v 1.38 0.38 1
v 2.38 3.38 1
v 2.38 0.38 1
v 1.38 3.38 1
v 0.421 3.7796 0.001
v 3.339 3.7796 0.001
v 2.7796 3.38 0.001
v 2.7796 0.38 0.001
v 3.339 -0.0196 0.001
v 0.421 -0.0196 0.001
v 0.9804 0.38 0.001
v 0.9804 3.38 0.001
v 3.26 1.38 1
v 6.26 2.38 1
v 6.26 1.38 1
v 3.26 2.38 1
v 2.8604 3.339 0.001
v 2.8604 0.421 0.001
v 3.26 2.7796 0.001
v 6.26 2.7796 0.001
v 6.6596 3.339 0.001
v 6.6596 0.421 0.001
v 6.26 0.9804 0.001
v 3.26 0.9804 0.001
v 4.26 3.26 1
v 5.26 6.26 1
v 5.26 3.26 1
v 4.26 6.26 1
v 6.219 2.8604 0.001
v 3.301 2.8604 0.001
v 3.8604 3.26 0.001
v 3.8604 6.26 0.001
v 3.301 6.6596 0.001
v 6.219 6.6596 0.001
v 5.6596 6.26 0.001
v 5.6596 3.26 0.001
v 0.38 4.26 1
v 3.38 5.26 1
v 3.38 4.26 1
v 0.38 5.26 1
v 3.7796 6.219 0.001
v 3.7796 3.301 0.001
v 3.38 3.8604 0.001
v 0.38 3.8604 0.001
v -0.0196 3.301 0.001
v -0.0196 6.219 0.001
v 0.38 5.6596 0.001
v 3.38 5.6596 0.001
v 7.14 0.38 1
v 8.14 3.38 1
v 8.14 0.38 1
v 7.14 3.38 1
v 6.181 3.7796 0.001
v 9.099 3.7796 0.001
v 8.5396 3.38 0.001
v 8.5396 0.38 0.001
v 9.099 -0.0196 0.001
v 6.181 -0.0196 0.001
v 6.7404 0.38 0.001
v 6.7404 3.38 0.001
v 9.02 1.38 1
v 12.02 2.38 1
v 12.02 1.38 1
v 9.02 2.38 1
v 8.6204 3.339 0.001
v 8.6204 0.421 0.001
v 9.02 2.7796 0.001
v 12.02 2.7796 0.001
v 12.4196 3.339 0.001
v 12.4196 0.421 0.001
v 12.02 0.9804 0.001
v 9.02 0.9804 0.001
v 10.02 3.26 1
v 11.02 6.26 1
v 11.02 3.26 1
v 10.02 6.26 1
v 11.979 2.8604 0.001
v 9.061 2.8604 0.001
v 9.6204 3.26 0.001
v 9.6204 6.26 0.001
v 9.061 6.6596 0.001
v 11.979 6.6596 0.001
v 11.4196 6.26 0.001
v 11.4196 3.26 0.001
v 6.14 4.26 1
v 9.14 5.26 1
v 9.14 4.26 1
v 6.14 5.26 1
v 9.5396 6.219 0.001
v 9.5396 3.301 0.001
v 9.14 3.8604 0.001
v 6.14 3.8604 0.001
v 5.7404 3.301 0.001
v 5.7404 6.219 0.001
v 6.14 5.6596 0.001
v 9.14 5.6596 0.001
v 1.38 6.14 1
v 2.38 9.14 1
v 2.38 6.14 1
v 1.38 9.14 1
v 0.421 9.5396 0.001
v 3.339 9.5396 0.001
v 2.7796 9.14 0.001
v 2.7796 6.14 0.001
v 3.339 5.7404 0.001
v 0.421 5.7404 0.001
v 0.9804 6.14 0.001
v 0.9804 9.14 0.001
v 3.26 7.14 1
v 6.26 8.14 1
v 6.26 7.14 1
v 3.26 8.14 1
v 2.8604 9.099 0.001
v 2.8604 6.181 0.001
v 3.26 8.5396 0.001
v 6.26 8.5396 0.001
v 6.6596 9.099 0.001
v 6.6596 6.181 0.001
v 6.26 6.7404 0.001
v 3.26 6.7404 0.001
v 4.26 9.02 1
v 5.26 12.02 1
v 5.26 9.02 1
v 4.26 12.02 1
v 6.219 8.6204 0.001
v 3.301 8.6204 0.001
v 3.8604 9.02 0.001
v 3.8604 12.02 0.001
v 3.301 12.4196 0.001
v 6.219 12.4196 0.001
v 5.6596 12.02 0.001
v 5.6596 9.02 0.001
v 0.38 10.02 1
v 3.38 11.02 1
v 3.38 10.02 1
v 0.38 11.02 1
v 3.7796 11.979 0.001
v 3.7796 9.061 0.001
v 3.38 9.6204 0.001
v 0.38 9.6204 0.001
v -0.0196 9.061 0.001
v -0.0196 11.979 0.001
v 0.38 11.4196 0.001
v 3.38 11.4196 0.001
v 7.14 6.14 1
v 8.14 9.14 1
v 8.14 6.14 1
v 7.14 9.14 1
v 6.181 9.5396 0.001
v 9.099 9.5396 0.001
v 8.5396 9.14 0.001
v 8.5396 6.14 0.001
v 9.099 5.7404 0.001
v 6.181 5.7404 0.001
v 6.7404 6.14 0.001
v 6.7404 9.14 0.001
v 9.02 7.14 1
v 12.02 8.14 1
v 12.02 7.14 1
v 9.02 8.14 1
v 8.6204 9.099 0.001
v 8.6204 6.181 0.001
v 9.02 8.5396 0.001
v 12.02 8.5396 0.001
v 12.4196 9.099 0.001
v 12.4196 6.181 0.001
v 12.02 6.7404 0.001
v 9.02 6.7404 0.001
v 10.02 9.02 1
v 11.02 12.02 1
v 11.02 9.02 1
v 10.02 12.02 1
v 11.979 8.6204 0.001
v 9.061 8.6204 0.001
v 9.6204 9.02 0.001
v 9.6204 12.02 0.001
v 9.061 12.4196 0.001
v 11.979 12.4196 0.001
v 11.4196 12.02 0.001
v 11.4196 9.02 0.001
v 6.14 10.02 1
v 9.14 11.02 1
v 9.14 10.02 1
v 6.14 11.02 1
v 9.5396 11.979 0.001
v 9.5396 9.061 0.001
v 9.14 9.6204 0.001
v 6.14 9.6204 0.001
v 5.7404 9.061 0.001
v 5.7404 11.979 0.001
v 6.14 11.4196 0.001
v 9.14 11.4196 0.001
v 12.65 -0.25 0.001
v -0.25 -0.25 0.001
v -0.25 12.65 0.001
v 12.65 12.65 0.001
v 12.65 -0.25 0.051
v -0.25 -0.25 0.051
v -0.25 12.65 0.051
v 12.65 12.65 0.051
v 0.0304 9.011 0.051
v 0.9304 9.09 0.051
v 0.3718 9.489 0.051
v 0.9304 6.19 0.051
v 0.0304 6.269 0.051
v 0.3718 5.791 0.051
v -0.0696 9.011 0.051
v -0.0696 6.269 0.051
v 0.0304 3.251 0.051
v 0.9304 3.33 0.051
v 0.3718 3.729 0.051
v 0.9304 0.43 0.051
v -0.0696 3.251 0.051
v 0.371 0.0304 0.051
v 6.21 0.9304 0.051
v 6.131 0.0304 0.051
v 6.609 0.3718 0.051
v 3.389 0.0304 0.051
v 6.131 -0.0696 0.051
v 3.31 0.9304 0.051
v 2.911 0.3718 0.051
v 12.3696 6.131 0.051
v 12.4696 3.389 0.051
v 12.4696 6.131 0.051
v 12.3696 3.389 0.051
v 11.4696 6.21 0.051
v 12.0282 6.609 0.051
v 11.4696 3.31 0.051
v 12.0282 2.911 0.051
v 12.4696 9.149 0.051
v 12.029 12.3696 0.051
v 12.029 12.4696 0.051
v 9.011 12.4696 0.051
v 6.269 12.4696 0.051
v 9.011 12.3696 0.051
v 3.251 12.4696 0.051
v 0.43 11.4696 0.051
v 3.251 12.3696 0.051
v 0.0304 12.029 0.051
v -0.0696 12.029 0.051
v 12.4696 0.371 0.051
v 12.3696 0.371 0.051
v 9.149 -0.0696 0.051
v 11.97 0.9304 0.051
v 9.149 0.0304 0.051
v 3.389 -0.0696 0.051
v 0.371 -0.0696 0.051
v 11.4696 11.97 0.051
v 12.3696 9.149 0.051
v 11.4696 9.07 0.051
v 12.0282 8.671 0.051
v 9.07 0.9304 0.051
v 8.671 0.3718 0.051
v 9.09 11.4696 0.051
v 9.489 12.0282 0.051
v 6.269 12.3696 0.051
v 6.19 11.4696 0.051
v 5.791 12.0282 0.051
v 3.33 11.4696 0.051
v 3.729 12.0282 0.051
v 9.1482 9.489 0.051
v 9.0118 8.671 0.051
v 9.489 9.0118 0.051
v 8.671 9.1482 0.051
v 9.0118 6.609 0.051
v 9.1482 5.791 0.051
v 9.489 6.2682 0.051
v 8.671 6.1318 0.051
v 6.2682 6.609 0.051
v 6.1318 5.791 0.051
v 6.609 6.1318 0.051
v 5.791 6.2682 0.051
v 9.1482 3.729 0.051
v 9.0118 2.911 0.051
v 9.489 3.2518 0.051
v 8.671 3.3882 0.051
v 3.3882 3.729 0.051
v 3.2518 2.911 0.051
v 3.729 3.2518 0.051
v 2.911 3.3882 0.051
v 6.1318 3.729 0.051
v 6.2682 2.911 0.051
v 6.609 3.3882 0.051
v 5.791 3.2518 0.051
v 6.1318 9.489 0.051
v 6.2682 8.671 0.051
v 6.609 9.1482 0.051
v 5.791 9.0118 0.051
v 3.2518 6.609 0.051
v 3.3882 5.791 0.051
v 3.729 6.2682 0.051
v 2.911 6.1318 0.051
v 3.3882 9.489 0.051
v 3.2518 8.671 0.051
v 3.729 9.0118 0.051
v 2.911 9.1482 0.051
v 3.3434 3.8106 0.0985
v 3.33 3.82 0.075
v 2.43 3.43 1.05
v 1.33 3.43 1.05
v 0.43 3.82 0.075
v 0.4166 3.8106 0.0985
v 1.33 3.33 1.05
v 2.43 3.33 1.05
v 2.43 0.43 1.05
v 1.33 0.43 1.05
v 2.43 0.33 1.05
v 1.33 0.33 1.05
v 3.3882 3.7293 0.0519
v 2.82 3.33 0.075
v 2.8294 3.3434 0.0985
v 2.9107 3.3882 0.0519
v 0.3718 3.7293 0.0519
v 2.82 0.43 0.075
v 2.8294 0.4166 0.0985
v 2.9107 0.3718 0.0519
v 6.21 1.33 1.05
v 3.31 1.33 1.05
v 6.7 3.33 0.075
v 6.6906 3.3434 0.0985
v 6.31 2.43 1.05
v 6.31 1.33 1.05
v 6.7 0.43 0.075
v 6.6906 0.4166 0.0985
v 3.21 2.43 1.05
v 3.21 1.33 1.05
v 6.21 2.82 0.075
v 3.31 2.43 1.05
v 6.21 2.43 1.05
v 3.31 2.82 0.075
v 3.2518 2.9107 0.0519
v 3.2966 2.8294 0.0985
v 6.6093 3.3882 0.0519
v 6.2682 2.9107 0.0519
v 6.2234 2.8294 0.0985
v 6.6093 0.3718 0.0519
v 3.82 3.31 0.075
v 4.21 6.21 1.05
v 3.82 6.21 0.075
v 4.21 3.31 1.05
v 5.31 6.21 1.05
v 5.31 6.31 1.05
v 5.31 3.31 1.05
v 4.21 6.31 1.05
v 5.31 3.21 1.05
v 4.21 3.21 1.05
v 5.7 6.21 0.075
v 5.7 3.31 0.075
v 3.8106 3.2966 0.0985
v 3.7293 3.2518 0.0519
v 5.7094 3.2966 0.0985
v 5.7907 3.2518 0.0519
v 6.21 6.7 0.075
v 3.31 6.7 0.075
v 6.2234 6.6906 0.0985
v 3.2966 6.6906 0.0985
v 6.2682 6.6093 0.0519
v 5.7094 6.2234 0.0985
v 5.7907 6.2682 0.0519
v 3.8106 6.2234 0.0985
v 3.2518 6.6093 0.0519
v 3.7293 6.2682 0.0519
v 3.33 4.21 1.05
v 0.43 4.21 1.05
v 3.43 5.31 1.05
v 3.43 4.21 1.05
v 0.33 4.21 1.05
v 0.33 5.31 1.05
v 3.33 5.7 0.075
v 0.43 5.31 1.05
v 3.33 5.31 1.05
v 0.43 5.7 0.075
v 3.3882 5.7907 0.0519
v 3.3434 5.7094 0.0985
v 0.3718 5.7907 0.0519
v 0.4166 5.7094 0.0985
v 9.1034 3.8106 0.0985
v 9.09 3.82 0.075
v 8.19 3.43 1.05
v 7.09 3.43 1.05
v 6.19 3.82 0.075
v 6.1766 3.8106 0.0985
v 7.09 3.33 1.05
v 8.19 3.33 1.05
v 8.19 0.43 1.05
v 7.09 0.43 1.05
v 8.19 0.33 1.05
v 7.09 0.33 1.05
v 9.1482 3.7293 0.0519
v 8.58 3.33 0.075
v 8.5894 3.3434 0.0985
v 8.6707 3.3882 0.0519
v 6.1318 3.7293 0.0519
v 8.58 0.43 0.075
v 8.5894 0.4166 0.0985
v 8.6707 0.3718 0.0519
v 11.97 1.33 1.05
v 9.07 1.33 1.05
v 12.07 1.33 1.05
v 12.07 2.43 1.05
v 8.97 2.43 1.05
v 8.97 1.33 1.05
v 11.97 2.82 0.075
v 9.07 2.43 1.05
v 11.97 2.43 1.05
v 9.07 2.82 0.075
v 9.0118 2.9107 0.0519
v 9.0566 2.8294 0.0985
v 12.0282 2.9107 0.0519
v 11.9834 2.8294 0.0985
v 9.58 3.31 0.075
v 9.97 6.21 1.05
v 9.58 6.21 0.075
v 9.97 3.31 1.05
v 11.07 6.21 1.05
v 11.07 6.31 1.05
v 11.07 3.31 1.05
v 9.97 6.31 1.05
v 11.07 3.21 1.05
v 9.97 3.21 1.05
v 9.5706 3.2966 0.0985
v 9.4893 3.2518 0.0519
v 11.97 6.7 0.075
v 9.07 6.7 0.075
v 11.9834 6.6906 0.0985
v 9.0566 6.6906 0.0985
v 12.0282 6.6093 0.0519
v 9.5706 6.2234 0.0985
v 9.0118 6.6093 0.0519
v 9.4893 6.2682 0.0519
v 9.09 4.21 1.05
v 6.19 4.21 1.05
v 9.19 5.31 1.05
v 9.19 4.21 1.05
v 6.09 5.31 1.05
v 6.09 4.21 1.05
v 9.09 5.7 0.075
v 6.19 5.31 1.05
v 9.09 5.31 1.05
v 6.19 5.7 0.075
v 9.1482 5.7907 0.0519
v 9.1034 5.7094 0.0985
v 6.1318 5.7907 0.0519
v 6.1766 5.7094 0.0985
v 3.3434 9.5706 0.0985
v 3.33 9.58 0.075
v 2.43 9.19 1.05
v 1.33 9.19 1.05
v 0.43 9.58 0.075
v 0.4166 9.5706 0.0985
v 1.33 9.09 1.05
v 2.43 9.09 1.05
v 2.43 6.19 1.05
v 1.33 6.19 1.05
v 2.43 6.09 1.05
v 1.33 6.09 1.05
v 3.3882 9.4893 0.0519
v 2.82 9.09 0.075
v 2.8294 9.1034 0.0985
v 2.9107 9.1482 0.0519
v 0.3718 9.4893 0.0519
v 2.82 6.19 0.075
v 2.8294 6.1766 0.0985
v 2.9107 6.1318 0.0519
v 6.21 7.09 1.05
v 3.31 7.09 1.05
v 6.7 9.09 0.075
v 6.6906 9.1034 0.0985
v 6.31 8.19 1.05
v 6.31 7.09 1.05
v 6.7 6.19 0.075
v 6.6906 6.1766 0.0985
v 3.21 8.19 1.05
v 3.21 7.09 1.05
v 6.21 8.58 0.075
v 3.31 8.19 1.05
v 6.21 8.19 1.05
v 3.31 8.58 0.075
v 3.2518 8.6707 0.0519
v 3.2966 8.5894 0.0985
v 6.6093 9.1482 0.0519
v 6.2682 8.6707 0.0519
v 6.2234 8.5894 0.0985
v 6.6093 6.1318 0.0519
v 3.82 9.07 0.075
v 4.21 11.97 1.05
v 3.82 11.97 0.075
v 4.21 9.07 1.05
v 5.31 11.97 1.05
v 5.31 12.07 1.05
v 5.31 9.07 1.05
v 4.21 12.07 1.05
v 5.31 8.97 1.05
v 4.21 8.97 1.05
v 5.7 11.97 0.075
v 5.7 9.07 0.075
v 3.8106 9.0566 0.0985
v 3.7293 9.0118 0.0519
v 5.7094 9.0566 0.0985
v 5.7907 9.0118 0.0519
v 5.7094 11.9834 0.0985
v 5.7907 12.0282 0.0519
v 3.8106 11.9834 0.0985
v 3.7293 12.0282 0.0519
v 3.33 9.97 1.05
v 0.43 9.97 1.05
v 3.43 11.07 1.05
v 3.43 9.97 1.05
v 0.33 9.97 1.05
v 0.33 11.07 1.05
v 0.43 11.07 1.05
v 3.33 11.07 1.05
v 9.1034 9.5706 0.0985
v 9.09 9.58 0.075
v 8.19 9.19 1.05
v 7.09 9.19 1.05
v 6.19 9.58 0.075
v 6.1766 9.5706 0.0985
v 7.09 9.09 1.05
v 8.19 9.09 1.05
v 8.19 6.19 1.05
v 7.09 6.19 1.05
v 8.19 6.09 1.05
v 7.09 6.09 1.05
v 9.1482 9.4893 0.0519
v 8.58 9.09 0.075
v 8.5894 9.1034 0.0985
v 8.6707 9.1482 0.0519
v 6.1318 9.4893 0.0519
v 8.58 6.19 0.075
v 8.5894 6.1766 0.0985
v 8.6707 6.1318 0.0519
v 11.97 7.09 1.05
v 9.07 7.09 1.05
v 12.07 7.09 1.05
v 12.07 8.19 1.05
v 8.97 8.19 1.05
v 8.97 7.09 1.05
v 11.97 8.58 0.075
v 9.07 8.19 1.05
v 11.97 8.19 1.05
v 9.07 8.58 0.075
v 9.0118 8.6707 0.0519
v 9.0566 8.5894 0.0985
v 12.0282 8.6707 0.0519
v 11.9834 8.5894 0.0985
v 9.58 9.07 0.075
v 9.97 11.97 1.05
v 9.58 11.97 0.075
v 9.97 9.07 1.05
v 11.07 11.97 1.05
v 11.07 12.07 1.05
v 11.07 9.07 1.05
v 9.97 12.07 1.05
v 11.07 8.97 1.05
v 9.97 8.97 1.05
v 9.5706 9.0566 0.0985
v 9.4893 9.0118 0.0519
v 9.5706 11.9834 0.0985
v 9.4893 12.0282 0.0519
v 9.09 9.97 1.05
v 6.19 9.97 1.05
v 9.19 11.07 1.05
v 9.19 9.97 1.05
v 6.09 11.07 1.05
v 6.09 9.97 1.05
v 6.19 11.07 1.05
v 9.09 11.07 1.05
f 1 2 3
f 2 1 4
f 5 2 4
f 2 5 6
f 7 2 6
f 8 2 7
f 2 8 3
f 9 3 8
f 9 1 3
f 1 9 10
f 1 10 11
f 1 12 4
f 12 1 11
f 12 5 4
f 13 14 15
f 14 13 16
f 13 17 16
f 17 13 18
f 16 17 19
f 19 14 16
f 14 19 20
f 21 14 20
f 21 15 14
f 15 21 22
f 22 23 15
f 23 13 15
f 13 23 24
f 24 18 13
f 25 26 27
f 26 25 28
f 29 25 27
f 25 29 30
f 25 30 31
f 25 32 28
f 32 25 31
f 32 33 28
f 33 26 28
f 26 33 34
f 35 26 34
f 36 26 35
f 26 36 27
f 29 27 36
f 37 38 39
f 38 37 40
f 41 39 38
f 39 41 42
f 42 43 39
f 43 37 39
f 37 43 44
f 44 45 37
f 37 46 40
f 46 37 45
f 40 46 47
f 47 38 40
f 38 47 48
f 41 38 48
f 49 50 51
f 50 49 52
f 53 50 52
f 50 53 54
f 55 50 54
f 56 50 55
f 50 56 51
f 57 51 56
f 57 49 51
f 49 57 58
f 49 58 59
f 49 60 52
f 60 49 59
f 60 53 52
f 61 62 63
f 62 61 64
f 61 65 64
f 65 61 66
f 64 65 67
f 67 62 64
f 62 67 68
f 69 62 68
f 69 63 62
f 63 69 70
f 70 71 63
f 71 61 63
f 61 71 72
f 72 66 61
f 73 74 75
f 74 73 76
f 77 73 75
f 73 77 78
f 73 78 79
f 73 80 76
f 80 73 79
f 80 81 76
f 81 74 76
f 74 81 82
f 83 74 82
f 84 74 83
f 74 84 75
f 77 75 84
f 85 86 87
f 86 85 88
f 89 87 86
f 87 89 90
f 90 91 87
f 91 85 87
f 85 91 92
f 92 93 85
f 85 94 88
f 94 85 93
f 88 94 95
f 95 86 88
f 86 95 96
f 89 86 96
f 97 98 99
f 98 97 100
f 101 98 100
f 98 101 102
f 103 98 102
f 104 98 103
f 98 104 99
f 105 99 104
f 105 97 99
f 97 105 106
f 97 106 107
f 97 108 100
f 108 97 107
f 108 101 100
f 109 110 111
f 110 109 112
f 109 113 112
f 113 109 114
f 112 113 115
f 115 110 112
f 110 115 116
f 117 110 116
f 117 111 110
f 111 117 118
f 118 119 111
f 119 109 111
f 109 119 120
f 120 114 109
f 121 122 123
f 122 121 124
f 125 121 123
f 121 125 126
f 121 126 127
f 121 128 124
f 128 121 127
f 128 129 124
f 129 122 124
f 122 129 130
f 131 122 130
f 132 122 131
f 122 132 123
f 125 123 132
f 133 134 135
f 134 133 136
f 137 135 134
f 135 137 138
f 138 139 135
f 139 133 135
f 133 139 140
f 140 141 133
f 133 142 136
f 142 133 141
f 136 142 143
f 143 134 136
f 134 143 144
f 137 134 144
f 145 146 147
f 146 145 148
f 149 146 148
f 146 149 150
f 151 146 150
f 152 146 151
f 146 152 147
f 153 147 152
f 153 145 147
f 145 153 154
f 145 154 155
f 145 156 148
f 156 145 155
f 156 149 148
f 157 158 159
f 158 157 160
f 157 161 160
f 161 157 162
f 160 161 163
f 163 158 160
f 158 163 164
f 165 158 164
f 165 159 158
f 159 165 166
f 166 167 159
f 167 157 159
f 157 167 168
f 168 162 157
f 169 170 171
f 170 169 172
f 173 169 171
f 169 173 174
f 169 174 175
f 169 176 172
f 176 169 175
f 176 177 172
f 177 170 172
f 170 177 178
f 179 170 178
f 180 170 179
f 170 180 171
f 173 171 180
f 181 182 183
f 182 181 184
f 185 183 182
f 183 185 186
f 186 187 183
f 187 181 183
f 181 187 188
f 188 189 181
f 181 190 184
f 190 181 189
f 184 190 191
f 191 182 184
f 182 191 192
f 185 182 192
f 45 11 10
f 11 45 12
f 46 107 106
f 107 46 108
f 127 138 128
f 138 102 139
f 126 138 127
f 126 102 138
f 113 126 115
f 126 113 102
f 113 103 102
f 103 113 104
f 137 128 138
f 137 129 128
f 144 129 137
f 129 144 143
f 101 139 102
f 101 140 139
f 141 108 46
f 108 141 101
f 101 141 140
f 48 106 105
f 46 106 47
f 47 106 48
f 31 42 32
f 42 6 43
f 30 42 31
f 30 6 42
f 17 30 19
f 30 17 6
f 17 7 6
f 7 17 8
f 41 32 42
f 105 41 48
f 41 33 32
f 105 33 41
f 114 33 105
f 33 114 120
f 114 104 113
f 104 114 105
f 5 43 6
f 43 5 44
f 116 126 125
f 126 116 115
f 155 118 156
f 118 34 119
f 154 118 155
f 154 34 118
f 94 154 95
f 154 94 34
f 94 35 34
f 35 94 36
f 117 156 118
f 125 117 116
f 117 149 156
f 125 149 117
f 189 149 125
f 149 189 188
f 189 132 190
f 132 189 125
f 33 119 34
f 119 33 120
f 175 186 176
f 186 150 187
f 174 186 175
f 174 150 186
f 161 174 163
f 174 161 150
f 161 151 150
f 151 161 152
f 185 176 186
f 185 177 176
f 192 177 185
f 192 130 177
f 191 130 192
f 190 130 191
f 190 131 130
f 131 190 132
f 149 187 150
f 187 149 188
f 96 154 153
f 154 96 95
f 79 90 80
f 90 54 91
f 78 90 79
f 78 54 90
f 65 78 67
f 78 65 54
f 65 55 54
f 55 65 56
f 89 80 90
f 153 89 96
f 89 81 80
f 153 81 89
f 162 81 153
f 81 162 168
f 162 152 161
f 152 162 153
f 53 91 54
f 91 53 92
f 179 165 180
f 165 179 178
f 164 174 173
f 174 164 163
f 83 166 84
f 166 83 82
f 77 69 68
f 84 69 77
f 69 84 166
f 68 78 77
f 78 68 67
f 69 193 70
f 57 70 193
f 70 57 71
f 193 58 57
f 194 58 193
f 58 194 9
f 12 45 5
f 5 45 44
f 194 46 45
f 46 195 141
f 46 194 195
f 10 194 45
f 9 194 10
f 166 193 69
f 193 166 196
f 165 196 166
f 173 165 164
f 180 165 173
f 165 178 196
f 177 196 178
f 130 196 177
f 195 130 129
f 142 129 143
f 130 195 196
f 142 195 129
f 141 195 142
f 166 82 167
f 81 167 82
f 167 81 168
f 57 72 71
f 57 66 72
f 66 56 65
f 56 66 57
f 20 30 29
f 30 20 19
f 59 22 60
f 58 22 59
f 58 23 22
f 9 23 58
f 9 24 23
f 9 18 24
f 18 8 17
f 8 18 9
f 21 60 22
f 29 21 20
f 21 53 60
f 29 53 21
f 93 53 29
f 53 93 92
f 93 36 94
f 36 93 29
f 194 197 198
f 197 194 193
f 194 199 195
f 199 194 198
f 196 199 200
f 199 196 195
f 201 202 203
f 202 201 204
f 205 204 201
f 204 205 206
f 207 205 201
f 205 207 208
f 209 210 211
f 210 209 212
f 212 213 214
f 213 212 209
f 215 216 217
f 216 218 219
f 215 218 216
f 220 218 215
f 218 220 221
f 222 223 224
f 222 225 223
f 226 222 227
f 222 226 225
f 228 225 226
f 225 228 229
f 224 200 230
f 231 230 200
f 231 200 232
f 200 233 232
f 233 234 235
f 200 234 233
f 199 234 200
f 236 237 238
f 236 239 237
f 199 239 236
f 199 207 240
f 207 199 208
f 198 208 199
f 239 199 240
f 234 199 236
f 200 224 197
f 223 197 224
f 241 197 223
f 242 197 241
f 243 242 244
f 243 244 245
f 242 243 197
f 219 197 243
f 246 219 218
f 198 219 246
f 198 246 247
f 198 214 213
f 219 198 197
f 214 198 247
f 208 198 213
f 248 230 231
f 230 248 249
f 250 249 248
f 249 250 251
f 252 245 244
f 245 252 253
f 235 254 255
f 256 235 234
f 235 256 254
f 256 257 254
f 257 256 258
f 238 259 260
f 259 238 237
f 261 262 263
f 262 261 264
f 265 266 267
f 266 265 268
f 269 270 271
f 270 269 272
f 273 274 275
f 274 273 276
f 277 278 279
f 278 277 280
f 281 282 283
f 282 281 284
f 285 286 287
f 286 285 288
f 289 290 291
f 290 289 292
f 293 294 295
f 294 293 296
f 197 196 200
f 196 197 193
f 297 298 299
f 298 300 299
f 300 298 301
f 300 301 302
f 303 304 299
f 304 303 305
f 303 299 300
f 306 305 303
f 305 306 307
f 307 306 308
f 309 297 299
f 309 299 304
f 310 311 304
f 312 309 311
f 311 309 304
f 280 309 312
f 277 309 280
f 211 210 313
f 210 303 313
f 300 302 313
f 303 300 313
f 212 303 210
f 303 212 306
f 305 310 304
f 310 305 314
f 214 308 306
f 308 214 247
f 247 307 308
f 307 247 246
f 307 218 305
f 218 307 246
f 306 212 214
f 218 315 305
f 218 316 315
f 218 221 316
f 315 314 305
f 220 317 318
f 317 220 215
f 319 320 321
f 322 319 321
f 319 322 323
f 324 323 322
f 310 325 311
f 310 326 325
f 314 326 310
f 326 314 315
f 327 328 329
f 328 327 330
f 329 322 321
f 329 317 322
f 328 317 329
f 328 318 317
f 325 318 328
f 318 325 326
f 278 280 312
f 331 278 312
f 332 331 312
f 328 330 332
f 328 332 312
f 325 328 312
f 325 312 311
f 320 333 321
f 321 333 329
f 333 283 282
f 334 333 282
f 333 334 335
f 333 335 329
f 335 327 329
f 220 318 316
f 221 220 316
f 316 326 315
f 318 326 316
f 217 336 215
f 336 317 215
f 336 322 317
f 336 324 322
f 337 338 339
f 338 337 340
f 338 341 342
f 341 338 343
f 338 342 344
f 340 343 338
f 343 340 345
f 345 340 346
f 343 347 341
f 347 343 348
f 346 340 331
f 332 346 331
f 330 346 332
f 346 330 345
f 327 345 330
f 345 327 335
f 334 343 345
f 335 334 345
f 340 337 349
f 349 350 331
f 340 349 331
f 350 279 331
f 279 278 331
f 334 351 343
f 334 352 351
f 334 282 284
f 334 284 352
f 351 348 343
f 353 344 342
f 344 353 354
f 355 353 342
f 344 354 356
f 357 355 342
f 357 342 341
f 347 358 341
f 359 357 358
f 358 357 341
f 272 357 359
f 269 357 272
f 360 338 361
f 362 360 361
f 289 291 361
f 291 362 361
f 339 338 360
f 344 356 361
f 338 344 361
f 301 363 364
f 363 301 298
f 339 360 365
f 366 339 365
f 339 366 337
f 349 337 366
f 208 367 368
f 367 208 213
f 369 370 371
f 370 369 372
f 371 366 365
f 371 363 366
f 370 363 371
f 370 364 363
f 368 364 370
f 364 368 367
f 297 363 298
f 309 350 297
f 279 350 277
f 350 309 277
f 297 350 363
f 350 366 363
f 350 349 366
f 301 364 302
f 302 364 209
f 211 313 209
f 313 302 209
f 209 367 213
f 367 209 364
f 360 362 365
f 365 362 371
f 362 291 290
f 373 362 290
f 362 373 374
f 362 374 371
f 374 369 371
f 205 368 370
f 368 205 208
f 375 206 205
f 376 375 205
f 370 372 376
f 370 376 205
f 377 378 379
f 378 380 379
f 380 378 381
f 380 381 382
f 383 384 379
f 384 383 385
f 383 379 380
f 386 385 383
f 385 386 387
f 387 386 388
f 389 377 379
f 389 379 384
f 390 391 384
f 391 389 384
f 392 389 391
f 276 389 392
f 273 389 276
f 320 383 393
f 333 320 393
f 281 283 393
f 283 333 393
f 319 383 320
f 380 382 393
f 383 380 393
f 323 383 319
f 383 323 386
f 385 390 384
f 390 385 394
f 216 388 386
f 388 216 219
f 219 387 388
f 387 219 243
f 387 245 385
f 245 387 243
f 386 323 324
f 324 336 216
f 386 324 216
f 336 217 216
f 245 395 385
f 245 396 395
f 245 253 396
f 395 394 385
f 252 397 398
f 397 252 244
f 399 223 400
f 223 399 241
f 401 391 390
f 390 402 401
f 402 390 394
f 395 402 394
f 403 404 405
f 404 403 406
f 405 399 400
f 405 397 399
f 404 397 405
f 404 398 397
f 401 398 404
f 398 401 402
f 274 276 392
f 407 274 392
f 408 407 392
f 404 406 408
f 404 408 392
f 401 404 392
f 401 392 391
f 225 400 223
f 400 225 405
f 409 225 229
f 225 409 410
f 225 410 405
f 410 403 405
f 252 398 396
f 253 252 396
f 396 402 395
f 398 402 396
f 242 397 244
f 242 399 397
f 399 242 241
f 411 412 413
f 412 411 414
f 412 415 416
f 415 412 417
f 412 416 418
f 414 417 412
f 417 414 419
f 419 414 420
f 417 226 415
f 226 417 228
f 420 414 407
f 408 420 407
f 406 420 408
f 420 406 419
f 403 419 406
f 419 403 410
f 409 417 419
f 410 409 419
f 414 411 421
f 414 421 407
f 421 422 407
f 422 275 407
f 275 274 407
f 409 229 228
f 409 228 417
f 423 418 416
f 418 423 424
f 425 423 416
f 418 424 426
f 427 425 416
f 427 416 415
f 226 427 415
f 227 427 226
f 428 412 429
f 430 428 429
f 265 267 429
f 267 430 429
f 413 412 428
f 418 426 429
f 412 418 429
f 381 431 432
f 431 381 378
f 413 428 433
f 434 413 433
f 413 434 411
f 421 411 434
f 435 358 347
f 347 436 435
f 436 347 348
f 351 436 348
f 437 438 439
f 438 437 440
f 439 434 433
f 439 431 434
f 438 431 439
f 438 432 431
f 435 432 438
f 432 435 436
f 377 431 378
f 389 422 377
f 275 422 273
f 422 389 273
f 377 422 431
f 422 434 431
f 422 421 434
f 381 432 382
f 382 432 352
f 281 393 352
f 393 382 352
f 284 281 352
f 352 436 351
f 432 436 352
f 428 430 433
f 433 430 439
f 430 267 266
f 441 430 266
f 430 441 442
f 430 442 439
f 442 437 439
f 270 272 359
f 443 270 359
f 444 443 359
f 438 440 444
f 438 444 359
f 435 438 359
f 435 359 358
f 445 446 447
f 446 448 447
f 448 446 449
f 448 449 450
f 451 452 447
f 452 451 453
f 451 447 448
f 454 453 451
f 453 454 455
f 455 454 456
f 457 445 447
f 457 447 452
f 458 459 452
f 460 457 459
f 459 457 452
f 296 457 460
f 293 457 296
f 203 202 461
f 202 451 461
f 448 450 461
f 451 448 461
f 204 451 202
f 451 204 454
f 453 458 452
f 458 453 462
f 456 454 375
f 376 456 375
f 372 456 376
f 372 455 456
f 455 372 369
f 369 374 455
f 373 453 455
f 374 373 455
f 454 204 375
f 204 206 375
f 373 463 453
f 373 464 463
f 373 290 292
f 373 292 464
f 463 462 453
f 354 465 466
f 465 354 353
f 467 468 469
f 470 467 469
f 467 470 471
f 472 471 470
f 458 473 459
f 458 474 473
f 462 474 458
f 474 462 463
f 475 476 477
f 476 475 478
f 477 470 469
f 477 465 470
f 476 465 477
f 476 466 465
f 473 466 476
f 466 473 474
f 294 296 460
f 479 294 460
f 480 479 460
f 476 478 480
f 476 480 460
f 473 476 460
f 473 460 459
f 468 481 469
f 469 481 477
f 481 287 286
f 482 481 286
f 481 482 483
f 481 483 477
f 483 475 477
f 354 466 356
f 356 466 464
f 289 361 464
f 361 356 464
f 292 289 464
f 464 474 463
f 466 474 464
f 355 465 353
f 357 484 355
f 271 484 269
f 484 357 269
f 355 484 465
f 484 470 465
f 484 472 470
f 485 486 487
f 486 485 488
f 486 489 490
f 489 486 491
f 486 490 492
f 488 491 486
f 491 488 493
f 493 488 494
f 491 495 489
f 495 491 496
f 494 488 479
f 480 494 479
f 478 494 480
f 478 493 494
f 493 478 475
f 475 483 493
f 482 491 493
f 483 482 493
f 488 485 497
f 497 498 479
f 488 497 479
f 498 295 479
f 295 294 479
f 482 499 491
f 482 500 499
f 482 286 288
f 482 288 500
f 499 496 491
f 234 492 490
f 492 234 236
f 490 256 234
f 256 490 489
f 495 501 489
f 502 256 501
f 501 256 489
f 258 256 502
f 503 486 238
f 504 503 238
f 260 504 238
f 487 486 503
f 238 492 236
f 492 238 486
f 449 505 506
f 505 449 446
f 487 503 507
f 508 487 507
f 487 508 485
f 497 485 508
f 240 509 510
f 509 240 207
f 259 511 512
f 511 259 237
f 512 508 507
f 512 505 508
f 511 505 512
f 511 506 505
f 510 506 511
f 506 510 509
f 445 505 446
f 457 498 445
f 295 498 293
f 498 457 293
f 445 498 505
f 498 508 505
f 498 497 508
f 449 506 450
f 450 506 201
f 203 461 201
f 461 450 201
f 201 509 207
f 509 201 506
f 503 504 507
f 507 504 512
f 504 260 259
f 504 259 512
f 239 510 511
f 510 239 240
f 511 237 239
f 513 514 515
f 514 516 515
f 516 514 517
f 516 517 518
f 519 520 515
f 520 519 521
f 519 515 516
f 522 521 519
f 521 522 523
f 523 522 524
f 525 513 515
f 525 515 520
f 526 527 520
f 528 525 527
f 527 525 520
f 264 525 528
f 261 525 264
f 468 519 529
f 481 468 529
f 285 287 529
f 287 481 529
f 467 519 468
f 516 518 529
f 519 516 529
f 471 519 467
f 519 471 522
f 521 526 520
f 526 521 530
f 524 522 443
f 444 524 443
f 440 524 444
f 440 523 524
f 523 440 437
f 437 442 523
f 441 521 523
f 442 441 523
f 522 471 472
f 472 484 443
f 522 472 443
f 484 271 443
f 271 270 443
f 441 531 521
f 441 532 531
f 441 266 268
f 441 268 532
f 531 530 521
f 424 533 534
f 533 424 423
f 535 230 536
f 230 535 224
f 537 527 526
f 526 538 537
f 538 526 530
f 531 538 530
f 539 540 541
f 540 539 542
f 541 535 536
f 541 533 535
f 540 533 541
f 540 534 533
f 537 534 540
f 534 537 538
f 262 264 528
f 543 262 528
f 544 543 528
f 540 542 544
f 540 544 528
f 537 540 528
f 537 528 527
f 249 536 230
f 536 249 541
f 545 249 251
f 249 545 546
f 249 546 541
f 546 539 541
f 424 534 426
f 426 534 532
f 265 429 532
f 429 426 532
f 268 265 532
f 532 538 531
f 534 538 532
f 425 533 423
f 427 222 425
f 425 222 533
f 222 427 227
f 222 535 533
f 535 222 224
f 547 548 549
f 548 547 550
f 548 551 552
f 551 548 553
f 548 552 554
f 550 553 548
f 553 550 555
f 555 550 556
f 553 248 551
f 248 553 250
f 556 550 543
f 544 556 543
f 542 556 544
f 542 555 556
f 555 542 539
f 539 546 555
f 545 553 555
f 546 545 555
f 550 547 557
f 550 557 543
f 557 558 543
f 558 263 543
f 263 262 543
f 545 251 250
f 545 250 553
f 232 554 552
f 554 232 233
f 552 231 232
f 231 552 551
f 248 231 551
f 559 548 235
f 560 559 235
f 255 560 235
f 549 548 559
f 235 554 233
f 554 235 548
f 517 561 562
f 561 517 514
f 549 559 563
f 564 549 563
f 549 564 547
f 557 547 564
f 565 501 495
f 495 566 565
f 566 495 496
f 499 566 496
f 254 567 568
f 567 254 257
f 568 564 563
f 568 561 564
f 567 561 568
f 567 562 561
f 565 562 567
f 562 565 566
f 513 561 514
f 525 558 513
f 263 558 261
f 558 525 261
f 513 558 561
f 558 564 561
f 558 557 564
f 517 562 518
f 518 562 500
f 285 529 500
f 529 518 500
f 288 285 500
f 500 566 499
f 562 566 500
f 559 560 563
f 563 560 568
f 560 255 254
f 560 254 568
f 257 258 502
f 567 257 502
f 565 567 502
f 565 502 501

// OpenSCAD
d = 0.4; // draft offset
g = 0.04; // gap/2

pitch = 4 + 4*d + 4*g;

pts = [
    // top
    [-0.5, 1.5, 1],[0.5, 1.5, 1], // 0 1 
    
    [-0.5,-1.5, 1],[0.5,-1.5, 1], // 2 3
    // bottom
    [-1.5+g,1.5+d, 0],           [1.5-g,1.5+d, 0], // 4     5
        [-0.5-d, 1.5, 0], [0.5+d, 1.5, 0],         //   6 7
        
        [-0.5-d,-1.5, 0], [0.5+d,-1.5, 0],         //   8 9
    [-1.5+g,-1.5-d, 0],          [1.5-g,-1.5-d, 0] // 10   11
];
    

faces = [ // orientation: CW when looking at a face from outside
    [0, 1, 3, 2],
    [4, 5, 1, 0],
    [1, 5, 7],
    [3, 1, 7, 9],
    [3, 9, 11],
    [2, 3, 11, 10], 
    [2, 10, 8],
    [6, 0, 2, 8],
    [0, 6, 4],
    [4, 6, 8, 10, 11, 9, 7, 5]
];


module tool_unit_cell(){
for ( i = [0:1:3] ) 
    rotate([0,0,90*i])
        translate([-1-d-g,-1-d-g,0])
             polyhedron(pts, faces, convexity=2);
}

module solid_tool(nx = 1, ny = 1, plate_thickness=[0,0,1]){
    union(){
        for (y = [0:1:(ny-1)])
            for (x = [0:1:(nx-1)])  
                translate([(x+0.5)*pitch+d+g, (y+0.5)*pitch+d+g, 0])
                        tool_unit_cell();

        translate([-plate_thickness[0], -plate_thickness[1], 1E-3-plate_thickness[2]])
            cube([
                nx*pitch+2*d+2*g+2*plate_thickness[0],
                ny*pitch+2*d+2*g+2*plate_thickness[1],
                plate_thickness[2]
            ]);
    }
}




module device(){
n_x = 2; 
n_y = 2;
difference(){
    minkowski(convexity=8){
        solid_tool(n_x, n_y, plate_thickness=[0.2,0.2,1]);
        // sphere(r=0.1, $fn=4);
        cube(0.1, center=true);
    };
    solid_tool(n_x, n_y, plate_thickness=[1,1,2]);   
}
}

difference(){
device();
// cube([10,10,10], center=true);
}
